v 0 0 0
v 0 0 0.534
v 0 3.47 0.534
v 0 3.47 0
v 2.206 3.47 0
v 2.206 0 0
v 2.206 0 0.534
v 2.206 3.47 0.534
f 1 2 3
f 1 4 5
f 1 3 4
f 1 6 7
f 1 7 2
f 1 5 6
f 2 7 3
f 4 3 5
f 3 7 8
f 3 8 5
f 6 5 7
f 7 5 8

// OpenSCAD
/* Warning, this is a very basic generator with a lot of approximation 
input data : [WLCSP, FEB, 2.206x3.47x0.534mm, 8, , A, C04-21235A]
generated by com.zoubworld.electronics.cad.model3d.Basic
Date : Sun Feb 15 10:50:49 CET 2026
*/

//body
color("black")
translate([0,0,0])
cube([2.206,3.47,0.534], center=false);
